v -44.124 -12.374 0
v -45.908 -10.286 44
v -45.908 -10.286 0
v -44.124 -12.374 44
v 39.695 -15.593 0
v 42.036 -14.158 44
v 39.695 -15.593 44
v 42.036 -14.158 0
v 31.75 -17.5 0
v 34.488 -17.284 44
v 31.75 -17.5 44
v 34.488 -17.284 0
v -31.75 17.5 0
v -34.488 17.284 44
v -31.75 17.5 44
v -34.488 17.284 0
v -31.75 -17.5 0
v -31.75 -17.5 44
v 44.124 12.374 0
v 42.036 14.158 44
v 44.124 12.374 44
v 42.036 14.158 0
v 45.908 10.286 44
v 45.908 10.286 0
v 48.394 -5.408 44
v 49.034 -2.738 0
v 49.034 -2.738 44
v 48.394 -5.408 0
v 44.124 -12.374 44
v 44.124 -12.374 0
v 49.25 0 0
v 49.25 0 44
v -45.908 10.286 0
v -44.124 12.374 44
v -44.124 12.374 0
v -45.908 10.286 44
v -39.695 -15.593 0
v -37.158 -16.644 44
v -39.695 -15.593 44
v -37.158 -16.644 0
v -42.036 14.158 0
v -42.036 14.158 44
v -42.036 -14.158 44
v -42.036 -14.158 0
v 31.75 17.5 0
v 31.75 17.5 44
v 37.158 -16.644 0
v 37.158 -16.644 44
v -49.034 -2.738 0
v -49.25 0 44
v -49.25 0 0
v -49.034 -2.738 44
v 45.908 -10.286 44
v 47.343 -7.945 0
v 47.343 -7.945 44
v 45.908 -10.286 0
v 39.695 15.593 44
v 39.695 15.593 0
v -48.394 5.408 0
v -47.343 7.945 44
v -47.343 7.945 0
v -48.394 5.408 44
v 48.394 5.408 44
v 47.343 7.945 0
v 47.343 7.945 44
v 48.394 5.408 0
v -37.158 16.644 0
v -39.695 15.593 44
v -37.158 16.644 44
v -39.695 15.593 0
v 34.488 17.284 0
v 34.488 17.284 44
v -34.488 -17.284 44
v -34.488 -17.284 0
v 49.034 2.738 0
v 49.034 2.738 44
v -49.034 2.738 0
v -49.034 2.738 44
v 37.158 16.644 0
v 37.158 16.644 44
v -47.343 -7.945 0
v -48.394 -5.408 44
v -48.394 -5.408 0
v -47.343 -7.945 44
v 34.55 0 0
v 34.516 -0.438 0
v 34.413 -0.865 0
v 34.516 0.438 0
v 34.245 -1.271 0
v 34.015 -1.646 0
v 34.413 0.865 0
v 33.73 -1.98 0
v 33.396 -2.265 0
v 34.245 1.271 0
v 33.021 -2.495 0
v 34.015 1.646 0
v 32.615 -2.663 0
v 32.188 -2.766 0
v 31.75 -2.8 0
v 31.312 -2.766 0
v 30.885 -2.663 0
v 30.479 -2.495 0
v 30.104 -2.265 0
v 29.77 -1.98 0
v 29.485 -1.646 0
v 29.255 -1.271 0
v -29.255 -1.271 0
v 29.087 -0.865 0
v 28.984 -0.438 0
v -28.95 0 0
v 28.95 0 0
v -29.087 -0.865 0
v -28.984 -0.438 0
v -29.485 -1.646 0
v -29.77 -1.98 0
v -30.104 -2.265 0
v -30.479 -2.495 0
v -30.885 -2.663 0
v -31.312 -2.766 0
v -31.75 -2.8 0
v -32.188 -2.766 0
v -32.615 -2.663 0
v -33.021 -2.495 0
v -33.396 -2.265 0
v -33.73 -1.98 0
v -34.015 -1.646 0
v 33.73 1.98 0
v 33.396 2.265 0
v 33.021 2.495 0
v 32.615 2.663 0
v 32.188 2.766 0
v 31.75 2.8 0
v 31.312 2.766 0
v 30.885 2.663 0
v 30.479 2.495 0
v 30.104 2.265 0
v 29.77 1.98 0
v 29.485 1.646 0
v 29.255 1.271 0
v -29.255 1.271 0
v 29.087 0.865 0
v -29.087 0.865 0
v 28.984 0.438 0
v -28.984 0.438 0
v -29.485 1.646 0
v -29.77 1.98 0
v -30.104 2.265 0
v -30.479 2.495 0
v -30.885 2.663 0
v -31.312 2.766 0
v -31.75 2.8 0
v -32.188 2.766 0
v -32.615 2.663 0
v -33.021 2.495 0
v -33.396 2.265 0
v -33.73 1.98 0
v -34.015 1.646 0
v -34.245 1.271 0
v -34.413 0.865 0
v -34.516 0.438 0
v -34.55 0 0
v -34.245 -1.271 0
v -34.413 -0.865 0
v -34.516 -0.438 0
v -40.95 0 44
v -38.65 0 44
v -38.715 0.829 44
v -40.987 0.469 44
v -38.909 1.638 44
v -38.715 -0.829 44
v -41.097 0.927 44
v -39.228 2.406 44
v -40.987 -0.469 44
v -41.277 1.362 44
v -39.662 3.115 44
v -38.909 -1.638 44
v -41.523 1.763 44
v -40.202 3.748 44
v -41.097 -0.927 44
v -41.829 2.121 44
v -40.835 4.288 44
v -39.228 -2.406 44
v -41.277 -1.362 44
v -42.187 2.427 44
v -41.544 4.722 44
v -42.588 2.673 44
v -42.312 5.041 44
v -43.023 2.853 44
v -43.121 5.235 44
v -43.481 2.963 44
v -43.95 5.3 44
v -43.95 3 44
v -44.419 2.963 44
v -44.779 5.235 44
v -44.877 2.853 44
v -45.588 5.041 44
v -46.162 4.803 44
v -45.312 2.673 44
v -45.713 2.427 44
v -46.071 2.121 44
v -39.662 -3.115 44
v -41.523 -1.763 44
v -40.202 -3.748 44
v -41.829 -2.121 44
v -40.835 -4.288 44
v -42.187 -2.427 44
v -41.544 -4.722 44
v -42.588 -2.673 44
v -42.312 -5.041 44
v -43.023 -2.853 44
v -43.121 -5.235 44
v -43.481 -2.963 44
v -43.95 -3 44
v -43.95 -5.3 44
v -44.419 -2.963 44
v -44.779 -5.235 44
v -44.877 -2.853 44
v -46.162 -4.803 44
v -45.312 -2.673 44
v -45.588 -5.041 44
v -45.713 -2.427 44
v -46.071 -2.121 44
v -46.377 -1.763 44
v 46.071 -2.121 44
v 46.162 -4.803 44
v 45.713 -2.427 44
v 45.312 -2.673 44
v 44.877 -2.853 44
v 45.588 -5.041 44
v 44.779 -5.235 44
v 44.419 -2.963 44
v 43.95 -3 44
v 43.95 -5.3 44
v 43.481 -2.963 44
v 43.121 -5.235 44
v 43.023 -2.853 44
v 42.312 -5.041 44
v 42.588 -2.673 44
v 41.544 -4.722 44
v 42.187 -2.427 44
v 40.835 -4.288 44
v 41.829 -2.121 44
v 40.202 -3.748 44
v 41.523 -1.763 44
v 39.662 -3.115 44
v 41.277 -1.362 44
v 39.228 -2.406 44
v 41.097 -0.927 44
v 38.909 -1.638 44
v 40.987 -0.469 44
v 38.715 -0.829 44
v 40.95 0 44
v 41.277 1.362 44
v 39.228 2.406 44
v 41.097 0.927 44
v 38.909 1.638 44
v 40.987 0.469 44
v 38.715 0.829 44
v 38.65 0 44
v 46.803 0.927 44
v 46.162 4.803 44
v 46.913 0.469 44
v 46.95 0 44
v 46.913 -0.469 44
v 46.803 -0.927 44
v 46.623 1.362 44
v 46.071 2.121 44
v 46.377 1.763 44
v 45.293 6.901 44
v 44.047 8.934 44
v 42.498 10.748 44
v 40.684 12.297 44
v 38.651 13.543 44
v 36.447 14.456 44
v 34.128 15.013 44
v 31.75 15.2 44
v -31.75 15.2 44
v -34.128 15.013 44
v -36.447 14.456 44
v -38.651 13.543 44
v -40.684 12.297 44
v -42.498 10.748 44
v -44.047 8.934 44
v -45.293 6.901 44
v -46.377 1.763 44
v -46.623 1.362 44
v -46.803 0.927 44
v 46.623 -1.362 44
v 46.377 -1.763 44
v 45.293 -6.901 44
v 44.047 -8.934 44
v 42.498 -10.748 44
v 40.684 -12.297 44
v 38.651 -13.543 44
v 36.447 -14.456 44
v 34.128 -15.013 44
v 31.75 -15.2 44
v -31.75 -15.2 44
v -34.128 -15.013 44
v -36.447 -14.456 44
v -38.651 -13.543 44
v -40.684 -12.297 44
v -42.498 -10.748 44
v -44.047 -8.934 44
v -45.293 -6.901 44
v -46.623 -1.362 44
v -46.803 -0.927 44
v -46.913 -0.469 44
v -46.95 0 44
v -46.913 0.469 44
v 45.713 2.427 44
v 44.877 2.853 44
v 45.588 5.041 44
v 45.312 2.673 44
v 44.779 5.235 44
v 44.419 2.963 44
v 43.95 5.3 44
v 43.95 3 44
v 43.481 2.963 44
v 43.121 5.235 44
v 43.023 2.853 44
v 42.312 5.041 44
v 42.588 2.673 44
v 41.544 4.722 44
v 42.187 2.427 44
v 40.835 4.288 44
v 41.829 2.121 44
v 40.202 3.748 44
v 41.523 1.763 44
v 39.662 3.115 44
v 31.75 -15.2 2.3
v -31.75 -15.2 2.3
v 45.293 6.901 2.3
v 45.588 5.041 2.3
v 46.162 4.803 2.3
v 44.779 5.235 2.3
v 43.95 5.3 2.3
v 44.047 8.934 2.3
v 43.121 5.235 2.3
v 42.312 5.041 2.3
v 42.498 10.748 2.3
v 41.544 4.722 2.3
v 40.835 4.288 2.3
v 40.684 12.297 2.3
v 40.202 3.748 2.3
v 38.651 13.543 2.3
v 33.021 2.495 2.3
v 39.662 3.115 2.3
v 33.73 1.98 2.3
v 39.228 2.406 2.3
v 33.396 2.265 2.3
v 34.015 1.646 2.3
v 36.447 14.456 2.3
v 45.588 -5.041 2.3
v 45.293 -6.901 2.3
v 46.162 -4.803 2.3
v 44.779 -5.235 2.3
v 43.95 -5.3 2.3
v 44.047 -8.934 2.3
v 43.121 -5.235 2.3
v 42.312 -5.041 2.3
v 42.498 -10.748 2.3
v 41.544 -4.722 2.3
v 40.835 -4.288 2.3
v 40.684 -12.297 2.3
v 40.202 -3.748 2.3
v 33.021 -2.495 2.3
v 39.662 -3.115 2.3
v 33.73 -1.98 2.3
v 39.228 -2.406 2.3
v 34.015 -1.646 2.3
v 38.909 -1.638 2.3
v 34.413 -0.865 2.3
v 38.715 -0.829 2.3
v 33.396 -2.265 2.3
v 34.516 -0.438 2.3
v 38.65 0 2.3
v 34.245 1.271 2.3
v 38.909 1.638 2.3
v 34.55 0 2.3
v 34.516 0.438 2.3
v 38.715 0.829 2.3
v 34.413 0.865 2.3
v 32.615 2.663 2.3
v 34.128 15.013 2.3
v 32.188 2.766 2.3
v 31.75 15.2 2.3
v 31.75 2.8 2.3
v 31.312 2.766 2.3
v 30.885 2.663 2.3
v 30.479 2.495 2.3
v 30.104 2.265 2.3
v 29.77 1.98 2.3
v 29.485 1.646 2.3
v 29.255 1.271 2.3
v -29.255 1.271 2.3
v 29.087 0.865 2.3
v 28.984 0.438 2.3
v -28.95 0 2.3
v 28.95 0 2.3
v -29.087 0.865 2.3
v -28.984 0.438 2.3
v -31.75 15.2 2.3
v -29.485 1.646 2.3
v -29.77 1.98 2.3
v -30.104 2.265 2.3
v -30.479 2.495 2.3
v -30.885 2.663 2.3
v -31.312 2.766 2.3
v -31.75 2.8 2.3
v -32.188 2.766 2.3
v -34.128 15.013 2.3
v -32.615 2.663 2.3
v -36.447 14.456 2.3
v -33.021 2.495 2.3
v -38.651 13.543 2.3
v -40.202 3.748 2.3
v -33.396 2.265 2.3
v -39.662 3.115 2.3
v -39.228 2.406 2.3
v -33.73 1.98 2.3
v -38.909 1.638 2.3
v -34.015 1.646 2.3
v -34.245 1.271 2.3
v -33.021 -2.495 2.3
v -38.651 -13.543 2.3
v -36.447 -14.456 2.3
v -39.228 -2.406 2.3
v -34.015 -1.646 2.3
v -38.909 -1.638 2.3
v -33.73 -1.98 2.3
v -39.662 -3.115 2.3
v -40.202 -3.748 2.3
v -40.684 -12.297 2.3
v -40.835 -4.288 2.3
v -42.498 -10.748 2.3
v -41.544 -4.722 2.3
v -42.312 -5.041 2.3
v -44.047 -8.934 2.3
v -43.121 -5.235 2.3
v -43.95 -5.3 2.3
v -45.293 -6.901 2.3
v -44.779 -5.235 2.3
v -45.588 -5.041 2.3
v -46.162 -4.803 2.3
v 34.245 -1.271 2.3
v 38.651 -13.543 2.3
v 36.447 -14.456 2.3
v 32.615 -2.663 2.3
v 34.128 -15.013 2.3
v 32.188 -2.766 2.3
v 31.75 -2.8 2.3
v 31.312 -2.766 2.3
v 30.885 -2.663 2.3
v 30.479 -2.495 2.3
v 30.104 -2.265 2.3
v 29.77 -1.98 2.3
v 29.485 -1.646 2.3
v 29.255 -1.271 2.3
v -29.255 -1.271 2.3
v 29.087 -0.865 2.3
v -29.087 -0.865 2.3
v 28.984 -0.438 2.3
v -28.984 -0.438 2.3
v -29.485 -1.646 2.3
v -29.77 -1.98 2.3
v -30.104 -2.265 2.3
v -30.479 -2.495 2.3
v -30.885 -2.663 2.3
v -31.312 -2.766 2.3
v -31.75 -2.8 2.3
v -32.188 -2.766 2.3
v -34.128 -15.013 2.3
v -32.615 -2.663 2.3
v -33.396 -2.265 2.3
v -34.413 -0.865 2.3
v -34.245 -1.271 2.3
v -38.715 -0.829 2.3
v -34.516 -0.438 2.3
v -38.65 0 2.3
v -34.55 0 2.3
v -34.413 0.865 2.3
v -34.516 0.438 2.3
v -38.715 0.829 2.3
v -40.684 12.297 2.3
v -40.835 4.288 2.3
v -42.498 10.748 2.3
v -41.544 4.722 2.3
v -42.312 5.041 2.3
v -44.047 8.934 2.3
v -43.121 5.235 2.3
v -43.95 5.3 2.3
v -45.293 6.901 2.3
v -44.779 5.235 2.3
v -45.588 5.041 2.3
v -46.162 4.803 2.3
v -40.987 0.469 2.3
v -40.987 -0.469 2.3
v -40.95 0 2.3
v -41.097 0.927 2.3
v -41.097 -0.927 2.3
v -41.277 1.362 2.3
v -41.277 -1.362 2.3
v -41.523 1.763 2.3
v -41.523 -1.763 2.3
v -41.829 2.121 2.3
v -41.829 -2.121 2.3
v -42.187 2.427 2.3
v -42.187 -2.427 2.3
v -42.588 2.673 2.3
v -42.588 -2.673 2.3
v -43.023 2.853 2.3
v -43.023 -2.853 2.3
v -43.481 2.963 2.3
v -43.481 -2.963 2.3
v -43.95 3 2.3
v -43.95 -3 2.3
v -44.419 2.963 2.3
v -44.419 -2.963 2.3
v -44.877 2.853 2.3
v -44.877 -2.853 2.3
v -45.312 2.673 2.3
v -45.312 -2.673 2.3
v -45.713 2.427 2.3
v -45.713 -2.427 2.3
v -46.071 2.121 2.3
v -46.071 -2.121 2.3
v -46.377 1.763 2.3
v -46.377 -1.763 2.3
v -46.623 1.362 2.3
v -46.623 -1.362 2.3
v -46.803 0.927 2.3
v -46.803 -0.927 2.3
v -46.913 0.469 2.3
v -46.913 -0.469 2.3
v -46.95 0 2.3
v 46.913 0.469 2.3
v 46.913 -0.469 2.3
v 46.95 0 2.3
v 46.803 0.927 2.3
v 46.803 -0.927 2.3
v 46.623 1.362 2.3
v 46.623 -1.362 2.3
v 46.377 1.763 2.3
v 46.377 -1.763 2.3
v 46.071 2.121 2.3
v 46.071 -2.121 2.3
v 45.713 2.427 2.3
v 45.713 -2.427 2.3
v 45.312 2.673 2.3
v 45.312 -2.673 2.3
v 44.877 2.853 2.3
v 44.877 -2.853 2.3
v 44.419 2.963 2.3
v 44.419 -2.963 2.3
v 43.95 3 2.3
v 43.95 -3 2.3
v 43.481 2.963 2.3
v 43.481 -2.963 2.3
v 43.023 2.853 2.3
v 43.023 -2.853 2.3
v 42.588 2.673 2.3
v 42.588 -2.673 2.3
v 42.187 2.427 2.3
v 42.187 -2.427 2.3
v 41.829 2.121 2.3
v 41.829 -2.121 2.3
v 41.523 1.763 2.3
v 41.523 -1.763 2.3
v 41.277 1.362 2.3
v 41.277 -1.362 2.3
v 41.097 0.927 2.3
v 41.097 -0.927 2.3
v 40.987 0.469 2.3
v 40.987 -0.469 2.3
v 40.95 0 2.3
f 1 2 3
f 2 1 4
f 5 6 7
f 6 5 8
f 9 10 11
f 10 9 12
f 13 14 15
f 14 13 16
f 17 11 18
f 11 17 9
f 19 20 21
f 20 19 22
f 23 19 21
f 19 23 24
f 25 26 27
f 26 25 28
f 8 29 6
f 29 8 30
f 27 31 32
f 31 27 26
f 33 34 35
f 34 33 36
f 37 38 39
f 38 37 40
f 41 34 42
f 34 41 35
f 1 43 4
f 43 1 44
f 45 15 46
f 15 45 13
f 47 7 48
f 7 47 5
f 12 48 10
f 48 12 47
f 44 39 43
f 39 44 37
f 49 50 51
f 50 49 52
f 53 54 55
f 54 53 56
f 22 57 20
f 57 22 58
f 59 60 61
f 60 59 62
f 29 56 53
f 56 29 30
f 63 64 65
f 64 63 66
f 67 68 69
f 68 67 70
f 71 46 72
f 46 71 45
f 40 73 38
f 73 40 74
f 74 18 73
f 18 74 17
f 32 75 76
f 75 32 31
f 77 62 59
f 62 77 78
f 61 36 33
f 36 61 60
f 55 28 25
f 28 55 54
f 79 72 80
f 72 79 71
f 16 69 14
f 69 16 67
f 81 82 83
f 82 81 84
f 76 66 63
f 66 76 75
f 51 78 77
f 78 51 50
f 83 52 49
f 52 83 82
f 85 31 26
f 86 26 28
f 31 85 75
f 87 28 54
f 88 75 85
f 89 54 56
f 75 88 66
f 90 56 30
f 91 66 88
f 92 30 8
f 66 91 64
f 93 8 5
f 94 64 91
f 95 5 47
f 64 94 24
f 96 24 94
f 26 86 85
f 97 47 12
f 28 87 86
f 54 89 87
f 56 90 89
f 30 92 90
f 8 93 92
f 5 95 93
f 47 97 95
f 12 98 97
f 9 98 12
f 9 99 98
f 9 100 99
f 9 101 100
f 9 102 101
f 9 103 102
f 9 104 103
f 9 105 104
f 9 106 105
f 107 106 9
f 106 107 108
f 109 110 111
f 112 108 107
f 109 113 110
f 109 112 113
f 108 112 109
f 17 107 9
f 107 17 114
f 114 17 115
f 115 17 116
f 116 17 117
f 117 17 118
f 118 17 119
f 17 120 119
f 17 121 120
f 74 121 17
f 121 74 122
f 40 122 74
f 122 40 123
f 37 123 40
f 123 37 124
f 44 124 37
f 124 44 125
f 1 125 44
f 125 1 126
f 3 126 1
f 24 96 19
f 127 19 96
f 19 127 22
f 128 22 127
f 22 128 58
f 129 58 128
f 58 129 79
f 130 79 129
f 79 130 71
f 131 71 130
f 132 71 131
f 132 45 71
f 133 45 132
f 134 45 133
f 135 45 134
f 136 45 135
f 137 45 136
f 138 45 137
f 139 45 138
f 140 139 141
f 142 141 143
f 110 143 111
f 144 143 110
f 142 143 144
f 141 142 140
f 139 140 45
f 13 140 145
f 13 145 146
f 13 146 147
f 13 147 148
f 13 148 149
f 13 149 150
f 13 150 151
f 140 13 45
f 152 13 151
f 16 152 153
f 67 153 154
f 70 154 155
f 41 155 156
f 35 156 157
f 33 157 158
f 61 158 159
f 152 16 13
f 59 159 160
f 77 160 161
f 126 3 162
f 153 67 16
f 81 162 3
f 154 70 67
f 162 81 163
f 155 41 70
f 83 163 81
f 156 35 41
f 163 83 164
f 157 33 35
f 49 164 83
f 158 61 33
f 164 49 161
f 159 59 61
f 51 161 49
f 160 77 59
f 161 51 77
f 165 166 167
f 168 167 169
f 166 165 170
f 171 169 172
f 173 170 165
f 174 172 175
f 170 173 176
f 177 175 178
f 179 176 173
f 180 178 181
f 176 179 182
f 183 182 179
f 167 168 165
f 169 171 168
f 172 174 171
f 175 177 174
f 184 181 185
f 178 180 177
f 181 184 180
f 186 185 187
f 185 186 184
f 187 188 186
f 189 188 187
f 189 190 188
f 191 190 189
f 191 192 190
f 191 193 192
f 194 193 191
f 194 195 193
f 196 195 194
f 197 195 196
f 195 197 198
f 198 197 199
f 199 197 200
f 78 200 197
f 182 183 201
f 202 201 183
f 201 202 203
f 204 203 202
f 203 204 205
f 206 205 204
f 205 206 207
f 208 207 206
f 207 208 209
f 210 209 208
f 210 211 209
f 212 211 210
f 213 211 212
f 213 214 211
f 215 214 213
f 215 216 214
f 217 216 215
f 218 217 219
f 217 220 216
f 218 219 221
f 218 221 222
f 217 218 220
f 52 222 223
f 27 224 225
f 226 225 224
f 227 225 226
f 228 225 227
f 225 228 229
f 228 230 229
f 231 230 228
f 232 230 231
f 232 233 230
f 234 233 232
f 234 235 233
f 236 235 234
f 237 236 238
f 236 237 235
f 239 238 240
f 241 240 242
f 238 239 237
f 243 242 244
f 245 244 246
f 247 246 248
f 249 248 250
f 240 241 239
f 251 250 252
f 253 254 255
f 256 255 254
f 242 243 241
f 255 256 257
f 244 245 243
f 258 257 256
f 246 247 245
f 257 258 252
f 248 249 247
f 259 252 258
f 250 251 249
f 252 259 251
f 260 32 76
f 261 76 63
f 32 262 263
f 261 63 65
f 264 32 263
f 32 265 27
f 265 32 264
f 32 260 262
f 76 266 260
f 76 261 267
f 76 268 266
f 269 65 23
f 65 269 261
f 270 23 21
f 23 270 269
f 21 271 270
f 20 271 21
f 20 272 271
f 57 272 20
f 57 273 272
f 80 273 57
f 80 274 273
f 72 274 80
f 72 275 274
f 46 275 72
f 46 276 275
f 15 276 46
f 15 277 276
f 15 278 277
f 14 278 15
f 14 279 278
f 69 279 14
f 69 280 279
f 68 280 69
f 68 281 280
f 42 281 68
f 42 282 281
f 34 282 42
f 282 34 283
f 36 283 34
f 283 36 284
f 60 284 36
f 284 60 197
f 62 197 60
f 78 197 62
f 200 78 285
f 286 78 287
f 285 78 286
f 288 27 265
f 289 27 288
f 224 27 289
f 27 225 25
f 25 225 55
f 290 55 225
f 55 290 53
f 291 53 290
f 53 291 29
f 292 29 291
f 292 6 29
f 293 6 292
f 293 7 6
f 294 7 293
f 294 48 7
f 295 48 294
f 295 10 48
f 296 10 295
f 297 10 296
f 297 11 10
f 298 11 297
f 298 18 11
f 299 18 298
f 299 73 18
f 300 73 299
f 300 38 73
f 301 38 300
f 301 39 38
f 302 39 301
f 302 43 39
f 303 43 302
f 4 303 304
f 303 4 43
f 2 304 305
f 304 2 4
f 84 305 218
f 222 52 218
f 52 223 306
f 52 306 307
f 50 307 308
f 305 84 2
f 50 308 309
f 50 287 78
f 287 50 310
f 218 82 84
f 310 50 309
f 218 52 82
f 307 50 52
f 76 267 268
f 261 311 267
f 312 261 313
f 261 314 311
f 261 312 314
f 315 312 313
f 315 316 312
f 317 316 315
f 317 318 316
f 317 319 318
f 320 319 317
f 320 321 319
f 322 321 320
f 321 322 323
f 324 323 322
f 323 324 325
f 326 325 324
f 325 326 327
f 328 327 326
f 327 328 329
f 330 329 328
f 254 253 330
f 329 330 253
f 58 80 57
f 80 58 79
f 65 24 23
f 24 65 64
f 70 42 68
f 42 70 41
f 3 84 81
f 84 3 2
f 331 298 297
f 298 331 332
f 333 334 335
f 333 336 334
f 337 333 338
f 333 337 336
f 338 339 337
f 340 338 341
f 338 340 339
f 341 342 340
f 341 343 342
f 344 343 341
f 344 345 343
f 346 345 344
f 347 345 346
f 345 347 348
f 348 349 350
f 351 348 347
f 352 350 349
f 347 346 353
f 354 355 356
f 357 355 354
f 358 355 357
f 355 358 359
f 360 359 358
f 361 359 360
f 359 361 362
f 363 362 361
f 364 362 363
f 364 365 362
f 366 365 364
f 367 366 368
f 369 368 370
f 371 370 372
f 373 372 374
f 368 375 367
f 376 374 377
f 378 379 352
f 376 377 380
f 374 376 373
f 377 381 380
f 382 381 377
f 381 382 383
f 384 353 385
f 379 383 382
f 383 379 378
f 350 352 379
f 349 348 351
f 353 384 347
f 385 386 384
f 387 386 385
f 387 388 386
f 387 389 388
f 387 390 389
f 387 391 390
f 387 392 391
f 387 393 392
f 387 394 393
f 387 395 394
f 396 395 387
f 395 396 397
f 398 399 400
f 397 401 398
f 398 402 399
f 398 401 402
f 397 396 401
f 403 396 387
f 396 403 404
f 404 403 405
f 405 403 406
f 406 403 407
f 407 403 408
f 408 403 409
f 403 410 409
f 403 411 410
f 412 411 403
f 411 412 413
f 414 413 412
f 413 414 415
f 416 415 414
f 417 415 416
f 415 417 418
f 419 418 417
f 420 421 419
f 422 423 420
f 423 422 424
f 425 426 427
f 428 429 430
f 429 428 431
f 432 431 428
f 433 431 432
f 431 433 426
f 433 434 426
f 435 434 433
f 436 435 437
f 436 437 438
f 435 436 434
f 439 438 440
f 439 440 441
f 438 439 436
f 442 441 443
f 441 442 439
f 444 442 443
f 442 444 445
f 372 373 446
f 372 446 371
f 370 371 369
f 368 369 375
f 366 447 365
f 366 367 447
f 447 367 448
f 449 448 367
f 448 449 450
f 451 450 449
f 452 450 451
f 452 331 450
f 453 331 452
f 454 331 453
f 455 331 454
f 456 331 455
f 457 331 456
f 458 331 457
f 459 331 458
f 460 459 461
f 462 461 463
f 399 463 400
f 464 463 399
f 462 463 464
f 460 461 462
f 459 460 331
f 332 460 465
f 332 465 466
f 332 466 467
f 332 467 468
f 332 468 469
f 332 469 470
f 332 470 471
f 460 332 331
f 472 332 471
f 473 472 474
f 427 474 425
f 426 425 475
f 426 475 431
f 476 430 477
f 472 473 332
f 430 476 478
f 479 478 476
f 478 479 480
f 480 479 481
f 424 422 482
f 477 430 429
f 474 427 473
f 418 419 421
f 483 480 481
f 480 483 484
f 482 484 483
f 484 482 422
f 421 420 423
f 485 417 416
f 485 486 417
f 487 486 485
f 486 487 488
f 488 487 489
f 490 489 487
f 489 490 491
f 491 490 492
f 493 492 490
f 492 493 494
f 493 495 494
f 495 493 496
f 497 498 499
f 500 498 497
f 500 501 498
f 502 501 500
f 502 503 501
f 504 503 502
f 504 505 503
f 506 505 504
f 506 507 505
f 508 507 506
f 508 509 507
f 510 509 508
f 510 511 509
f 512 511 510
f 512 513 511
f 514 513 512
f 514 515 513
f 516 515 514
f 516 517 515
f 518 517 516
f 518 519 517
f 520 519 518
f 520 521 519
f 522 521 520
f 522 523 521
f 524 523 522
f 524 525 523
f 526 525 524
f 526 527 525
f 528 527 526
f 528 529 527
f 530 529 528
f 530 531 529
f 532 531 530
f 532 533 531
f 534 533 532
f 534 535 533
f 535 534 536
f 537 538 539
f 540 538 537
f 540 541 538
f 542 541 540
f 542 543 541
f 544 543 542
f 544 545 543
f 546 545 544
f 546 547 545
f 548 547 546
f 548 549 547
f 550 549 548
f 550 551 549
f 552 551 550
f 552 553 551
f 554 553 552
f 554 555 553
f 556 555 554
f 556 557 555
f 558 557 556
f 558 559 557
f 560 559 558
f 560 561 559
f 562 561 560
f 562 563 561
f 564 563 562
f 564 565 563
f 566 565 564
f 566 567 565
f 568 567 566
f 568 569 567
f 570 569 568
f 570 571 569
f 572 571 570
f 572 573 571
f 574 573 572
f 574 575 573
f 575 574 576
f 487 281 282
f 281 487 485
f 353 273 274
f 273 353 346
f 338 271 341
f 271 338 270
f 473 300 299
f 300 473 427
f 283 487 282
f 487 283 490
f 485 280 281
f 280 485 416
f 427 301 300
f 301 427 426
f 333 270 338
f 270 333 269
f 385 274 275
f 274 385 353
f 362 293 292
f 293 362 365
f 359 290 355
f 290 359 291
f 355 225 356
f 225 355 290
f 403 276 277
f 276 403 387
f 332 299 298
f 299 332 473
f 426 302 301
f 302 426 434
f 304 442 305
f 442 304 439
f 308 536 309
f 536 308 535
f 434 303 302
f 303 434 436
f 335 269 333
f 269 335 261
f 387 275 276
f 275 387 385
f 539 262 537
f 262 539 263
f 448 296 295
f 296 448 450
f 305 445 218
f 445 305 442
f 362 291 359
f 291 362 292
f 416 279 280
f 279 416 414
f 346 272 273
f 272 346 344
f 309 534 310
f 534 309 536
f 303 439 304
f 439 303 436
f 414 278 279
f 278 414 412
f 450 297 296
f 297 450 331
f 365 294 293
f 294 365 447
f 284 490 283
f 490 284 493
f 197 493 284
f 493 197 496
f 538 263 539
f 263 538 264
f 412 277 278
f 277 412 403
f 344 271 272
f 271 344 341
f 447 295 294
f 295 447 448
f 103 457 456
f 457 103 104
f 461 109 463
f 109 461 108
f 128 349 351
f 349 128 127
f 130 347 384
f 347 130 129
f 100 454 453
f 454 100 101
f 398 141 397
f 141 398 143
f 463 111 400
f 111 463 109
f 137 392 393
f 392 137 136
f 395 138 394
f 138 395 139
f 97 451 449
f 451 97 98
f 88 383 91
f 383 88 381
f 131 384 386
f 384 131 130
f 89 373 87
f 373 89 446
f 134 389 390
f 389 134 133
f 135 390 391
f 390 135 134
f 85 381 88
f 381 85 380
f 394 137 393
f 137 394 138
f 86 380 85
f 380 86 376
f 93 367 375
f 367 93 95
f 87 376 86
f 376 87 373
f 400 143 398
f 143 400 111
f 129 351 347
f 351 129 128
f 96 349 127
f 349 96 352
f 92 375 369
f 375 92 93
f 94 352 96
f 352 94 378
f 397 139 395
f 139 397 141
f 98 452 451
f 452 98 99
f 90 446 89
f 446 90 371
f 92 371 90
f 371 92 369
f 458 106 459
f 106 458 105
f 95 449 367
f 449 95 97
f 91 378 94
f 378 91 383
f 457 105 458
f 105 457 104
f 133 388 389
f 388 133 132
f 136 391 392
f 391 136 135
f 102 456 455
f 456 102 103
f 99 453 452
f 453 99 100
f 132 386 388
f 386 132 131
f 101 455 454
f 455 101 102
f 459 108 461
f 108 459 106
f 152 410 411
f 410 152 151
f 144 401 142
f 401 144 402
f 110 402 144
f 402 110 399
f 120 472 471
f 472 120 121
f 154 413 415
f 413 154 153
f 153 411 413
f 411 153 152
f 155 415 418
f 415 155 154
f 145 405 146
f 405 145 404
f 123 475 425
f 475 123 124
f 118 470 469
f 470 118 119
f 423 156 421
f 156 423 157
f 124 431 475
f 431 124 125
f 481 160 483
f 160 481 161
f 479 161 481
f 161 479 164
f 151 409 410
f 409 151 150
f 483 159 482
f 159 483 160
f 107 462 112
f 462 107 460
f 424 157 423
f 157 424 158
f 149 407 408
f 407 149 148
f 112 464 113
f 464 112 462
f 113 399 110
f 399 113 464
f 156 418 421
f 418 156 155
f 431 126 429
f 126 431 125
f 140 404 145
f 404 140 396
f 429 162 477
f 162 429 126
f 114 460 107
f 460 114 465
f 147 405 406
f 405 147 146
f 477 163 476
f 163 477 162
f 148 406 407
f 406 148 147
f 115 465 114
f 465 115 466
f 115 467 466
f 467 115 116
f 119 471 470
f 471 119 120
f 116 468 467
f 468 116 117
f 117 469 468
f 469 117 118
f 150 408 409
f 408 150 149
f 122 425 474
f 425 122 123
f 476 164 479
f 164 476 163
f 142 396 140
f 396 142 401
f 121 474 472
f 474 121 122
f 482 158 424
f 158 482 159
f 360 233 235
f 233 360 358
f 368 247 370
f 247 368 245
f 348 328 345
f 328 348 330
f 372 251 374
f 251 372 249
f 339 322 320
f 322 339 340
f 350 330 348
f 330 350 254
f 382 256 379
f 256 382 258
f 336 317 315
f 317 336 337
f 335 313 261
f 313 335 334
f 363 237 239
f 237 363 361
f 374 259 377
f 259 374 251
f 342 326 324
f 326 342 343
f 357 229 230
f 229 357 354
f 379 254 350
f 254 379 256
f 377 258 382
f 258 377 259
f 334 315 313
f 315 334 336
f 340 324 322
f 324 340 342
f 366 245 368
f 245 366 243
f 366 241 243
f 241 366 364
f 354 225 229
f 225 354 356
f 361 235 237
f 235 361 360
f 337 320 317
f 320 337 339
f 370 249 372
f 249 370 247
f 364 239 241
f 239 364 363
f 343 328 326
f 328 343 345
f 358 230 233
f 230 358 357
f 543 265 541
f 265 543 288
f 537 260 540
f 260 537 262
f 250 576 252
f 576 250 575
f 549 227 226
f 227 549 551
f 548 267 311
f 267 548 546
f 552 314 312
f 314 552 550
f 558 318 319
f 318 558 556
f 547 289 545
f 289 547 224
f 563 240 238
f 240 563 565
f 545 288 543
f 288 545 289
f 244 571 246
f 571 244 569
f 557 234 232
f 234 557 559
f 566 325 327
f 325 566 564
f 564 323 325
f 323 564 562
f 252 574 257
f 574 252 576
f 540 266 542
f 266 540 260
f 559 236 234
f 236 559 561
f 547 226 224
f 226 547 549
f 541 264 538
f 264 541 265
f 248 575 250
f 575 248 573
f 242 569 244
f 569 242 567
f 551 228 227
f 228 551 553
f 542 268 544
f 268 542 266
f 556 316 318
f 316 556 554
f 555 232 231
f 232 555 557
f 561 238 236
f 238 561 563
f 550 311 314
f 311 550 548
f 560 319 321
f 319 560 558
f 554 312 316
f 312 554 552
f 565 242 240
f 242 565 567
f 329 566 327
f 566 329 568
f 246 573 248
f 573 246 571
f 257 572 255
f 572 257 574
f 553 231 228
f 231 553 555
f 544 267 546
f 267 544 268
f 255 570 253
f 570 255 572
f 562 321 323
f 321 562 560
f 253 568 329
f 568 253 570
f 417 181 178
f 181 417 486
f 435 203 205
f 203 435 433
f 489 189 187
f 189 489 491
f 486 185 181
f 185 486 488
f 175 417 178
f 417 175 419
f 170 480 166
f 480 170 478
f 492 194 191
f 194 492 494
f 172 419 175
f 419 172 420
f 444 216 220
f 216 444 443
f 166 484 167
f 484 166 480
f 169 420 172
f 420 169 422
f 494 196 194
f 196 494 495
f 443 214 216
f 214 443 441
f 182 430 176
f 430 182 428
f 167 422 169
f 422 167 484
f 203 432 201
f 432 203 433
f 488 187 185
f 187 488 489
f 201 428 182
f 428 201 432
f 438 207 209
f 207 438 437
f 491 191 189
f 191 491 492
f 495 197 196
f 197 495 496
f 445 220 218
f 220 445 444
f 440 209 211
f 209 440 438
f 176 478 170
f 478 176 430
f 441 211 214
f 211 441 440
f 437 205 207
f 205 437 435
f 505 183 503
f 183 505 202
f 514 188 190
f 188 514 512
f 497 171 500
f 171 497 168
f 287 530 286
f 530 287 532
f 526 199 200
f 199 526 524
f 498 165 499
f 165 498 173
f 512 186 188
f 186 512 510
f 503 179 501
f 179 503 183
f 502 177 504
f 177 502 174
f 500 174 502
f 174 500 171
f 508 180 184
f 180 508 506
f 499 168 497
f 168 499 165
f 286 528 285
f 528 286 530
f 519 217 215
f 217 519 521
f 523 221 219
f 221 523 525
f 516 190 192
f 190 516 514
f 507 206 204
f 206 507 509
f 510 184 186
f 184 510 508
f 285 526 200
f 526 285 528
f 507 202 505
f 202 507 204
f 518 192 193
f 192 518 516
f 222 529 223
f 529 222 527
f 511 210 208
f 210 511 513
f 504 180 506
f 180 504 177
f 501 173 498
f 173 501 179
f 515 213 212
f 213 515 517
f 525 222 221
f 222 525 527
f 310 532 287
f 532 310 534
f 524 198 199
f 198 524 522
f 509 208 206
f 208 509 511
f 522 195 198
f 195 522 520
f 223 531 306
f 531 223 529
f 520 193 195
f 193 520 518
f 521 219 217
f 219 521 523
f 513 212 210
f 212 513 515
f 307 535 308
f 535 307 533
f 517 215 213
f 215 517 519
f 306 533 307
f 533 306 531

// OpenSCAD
width = 35;
height = 44;

gap = 63.5;
hole = 2.8;
th = 2.3;
size = 12;

insert = 3;

$fn = 40;
union(){
    difference(){
        hull(){
            translate([gap/2, 0, 0]) cylinder(height, width/2, width/2);
            translate([-gap/2, 0, 0]) cylinder(height, width/2, width/2);
        }
        hull(){
            translate([gap/2, 0, th]) cylinder(height - th, width/2 - th, width/2 - th);
            translate([-gap/2, 0, th]) cylinder(height - th, width/2 - th, width/2 - th);
        }
        
        translate([gap/2, 0, 0]) cylinder(th, hole, hole);
        translate([-gap/2, 0, 0]) cylinder(th, hole, hole);
    }
    
    difference(){
        translate([gap/2 + width/2 - insert - th, 0, 0]) cylinder(height, insert + th, insert + th);
        translate([gap/2 + width/2 - insert - th, 0, 0]) cylinder(height, insert, insert);
    }
    difference(){
        translate([insert + th - gap/2 - width/2, 0, 0]) cylinder(height, insert + th, insert + th);
        translate([insert + th - gap/2 - width/2, 0, 0]) cylinder(height, insert, insert);
    }
}
